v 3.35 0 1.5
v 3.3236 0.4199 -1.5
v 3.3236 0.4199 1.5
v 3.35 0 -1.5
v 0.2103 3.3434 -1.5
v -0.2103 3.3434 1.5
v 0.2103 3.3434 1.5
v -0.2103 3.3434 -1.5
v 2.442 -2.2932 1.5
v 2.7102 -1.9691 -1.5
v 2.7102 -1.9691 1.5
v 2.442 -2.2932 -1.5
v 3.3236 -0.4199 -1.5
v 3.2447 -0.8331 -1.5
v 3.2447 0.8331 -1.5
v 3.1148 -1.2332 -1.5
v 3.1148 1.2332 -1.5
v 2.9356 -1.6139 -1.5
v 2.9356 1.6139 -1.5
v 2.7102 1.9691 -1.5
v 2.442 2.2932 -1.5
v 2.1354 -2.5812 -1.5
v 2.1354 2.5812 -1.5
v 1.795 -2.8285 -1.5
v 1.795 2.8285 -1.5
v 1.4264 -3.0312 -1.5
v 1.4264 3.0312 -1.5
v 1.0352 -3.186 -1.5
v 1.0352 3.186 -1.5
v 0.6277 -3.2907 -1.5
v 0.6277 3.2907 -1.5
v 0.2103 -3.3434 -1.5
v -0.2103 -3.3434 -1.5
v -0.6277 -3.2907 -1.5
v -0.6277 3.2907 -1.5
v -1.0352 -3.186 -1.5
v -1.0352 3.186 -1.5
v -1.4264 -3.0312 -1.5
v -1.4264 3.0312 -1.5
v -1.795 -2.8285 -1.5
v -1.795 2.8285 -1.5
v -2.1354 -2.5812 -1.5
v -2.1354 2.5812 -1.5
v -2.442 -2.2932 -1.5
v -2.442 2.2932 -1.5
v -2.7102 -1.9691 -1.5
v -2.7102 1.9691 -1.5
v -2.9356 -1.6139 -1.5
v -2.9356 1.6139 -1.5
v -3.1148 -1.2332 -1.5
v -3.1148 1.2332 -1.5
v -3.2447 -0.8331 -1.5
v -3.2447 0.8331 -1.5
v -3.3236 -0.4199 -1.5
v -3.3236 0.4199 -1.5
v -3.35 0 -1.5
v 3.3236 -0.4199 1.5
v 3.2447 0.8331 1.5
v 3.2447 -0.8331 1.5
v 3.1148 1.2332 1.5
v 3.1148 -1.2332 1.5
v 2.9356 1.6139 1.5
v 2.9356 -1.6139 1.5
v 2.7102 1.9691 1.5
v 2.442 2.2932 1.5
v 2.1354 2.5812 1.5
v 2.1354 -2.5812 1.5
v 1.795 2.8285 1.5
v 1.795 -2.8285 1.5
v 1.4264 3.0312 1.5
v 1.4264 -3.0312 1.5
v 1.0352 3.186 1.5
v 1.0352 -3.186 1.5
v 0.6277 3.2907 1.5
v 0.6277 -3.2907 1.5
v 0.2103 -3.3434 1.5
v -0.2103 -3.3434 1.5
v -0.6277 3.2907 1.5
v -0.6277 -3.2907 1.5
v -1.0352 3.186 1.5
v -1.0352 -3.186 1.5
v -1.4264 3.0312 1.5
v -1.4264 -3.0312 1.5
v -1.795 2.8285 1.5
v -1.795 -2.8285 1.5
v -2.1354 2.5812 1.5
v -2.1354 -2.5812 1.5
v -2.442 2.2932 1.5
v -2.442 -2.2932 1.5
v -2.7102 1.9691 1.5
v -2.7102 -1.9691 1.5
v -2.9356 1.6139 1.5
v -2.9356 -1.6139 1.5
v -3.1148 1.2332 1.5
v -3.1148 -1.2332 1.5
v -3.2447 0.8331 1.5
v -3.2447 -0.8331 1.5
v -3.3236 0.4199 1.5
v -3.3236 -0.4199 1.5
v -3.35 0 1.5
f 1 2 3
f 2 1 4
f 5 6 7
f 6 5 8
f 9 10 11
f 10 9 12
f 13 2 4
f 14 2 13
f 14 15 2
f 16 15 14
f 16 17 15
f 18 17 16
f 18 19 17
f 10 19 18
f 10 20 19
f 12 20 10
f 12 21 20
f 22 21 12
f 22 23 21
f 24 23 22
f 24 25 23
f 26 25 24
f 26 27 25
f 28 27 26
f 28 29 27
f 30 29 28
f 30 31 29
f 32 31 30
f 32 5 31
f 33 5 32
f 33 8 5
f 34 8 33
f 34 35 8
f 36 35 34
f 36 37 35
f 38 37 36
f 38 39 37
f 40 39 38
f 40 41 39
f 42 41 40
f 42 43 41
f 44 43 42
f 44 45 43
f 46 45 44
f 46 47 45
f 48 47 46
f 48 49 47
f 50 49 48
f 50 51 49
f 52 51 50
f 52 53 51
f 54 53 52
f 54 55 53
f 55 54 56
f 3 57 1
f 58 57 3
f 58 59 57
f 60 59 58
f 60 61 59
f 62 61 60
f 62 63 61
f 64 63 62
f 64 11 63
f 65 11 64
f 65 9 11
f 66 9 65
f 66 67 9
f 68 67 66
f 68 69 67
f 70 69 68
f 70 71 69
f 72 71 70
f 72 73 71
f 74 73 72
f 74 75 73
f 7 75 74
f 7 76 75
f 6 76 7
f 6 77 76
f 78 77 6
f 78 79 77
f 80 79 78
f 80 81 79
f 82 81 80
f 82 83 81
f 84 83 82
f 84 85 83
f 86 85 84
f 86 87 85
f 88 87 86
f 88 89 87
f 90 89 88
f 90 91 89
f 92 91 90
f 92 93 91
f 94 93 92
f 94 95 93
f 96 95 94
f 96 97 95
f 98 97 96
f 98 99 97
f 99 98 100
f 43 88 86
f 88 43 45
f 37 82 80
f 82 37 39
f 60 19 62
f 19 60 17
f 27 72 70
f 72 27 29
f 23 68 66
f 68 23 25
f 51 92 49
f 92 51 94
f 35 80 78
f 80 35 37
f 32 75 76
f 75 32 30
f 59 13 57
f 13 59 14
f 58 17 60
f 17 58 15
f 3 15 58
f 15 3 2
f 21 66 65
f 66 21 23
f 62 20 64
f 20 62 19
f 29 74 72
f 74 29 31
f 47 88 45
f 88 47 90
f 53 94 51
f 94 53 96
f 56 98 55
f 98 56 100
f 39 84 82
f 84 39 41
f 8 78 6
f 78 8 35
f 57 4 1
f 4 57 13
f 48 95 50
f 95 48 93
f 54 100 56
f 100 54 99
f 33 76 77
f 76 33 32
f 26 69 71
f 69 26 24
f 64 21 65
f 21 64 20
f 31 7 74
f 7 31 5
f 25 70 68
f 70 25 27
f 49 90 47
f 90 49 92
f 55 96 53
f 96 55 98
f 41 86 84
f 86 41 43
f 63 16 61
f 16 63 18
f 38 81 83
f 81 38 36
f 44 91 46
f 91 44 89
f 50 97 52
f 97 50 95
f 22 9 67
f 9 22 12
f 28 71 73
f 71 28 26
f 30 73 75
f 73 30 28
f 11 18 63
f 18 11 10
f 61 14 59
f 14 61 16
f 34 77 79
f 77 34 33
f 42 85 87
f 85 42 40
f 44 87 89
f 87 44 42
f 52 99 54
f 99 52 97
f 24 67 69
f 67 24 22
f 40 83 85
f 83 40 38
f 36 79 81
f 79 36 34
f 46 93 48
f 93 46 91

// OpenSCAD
$fn = 50;


difference() {
	union() {
		translate(v = [0, 0, -1.5000000000]) {
			cylinder(h = 3, r = 3.3500000000);
		}
	}
	union() {
		translate(v = [0, 0, -100.0000000000]) {
			cylinder(h = 200, r = 0);
		}
	}
}
